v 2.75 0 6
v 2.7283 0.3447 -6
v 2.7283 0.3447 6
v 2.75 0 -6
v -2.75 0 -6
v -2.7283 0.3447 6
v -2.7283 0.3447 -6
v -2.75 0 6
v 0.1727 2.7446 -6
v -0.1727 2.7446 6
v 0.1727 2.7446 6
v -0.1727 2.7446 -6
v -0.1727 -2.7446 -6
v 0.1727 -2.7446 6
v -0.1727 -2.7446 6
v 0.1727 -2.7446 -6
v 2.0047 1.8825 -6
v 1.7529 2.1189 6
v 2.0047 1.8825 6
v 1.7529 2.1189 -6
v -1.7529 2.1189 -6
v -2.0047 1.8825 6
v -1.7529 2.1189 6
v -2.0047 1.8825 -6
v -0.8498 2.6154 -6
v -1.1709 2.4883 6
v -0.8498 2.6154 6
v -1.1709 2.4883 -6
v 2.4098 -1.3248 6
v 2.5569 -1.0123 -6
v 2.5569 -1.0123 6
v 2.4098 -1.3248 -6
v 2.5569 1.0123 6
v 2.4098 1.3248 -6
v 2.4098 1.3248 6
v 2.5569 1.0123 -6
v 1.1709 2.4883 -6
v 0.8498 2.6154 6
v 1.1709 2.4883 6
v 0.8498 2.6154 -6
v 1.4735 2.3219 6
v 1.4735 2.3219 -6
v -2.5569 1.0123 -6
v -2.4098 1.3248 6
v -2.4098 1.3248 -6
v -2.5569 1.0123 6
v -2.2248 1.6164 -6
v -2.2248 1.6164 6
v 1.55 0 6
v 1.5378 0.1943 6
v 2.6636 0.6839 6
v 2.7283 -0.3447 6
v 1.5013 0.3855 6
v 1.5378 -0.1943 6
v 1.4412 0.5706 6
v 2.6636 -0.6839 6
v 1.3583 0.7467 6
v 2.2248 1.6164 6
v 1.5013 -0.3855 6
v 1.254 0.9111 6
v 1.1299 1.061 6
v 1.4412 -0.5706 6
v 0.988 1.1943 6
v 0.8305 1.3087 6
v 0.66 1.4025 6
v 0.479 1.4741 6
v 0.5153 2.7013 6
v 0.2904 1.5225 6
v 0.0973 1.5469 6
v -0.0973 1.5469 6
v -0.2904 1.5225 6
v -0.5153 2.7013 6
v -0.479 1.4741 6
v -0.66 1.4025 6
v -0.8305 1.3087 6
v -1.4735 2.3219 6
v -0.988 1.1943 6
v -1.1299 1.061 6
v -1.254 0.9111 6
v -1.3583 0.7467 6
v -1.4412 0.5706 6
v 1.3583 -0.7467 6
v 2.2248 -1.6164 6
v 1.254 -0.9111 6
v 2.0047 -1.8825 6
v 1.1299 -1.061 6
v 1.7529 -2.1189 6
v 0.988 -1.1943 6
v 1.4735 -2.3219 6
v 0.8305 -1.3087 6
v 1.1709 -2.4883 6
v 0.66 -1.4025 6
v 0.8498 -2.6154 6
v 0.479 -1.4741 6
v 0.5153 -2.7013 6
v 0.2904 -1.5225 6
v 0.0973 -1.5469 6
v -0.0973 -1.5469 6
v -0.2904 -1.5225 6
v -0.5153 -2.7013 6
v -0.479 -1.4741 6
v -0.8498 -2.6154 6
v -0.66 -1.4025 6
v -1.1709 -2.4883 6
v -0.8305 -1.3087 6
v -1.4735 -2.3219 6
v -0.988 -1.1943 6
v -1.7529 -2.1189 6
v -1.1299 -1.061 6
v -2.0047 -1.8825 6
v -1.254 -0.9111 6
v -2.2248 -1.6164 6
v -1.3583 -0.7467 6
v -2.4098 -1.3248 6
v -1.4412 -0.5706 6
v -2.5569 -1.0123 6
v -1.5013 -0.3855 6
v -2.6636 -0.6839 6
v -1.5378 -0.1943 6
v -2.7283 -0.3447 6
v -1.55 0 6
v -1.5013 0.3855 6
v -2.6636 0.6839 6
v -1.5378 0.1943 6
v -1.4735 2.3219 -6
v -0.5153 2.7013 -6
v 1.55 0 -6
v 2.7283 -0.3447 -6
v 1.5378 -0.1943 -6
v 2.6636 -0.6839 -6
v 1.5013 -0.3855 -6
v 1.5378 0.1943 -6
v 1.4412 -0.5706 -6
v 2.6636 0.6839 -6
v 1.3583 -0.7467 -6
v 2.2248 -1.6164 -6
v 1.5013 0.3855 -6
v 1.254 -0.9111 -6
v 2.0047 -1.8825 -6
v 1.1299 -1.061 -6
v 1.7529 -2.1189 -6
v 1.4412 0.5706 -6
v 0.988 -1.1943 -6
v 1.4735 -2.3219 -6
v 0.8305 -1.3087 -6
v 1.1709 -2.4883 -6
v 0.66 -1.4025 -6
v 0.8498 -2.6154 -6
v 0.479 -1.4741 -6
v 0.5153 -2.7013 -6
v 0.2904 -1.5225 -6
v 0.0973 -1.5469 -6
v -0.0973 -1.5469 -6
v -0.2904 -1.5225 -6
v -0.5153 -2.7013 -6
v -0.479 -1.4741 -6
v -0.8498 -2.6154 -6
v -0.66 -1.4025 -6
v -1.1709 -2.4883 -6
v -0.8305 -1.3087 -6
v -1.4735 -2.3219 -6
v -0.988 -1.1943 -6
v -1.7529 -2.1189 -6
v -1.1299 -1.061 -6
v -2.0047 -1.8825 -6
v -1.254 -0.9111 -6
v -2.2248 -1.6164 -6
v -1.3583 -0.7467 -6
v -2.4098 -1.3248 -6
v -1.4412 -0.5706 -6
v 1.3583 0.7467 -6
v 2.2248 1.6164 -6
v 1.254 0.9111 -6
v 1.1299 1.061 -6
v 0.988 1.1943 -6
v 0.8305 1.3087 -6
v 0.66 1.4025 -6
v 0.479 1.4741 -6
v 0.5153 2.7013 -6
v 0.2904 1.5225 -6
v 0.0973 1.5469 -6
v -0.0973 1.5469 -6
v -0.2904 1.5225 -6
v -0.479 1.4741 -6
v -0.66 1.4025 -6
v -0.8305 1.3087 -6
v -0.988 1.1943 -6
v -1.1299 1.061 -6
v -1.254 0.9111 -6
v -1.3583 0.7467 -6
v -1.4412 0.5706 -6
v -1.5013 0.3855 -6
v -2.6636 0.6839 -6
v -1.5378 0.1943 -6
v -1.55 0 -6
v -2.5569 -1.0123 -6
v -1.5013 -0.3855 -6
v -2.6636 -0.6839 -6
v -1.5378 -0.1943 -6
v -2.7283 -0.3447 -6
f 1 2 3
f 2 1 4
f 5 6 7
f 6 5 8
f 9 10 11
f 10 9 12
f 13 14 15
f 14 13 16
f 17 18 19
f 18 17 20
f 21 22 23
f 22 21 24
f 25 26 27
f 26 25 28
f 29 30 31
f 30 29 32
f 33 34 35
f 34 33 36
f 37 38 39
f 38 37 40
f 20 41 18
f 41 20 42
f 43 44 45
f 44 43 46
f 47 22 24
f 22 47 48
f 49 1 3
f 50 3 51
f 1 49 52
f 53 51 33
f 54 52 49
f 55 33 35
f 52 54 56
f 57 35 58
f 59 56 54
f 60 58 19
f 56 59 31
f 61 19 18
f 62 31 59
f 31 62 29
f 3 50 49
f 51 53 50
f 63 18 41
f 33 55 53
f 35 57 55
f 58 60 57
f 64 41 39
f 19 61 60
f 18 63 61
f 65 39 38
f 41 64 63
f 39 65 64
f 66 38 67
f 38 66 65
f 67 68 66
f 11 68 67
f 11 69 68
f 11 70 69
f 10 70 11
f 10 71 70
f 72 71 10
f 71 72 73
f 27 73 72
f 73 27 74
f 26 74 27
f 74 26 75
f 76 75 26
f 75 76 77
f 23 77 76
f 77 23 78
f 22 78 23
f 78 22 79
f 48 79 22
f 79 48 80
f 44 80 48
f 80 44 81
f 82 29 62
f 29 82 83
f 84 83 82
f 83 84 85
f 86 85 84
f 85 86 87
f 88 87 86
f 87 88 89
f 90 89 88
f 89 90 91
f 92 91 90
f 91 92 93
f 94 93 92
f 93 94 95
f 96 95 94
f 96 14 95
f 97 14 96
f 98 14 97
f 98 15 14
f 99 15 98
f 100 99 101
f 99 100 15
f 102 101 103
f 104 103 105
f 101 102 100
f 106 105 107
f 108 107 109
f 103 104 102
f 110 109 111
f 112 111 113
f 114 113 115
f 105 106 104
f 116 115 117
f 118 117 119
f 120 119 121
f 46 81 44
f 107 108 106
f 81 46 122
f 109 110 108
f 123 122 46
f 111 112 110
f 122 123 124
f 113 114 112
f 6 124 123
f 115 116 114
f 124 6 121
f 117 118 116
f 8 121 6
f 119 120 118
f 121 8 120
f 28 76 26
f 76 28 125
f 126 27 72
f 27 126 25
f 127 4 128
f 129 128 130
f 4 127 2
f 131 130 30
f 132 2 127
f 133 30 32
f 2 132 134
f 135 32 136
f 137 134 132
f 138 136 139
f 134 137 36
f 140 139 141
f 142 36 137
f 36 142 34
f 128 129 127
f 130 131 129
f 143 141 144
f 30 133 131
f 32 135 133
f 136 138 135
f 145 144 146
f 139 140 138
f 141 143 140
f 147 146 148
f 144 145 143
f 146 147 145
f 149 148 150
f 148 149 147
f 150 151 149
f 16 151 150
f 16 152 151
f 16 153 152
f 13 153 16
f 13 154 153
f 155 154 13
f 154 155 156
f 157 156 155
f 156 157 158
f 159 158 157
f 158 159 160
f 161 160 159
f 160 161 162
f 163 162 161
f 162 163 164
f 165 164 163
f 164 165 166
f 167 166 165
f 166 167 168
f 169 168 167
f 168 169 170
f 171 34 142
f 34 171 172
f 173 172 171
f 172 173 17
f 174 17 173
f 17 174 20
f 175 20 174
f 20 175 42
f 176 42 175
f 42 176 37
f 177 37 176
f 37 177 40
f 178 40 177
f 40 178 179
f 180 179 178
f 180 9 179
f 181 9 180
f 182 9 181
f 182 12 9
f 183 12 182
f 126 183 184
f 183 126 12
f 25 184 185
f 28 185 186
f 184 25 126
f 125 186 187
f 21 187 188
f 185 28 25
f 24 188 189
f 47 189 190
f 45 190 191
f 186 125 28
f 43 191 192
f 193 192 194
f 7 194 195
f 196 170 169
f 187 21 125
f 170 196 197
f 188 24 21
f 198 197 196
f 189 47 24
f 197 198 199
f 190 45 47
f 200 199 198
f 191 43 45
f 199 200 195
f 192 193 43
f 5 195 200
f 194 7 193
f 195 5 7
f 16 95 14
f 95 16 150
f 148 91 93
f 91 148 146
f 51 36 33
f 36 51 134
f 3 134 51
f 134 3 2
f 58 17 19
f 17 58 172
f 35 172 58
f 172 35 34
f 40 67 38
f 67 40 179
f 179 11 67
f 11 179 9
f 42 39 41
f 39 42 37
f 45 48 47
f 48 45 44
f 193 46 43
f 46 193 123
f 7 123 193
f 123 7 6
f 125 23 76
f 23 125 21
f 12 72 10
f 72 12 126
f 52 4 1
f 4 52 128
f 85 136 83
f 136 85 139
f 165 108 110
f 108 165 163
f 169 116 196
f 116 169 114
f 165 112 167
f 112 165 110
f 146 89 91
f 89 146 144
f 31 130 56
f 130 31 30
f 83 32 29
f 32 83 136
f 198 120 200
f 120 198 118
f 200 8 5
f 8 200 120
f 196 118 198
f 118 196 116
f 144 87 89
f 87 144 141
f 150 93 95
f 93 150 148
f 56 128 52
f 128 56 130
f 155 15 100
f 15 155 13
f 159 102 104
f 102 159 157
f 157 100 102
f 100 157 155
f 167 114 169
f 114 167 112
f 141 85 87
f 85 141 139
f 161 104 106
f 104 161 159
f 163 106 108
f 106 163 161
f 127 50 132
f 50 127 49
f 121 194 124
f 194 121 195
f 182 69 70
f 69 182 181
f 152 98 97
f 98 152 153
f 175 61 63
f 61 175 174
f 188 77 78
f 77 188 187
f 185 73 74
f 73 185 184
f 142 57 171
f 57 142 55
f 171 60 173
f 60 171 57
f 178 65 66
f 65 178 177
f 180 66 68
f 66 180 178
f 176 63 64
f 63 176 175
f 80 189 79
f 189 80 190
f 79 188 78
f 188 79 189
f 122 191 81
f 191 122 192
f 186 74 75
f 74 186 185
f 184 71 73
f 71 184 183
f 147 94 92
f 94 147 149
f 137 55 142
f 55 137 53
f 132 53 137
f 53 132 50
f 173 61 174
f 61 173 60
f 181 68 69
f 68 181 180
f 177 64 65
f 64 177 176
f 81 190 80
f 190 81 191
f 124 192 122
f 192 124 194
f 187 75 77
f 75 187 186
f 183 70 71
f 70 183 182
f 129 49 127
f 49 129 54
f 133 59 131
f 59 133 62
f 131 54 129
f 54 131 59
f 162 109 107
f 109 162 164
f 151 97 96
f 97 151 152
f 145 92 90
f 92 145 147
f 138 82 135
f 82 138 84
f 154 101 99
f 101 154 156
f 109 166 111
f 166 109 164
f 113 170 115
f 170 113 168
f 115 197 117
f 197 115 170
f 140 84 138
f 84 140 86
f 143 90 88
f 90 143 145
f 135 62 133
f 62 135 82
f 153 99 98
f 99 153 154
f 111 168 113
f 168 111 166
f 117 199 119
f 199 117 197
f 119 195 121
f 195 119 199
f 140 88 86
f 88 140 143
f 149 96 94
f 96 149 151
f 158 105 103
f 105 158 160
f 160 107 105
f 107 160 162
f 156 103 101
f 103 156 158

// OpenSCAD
$fn = 50;


difference() {
	union() {
		translate(v = [0, 0, -6.0000000000]) {
			cylinder(h = 12, r = 2.7500000000);
		}
	}
	union() {
		translate(v = [0, 0, -100.0000000000]) {
			cylinder(h = 200, r = 1.5500000000);
		}
	}
}
